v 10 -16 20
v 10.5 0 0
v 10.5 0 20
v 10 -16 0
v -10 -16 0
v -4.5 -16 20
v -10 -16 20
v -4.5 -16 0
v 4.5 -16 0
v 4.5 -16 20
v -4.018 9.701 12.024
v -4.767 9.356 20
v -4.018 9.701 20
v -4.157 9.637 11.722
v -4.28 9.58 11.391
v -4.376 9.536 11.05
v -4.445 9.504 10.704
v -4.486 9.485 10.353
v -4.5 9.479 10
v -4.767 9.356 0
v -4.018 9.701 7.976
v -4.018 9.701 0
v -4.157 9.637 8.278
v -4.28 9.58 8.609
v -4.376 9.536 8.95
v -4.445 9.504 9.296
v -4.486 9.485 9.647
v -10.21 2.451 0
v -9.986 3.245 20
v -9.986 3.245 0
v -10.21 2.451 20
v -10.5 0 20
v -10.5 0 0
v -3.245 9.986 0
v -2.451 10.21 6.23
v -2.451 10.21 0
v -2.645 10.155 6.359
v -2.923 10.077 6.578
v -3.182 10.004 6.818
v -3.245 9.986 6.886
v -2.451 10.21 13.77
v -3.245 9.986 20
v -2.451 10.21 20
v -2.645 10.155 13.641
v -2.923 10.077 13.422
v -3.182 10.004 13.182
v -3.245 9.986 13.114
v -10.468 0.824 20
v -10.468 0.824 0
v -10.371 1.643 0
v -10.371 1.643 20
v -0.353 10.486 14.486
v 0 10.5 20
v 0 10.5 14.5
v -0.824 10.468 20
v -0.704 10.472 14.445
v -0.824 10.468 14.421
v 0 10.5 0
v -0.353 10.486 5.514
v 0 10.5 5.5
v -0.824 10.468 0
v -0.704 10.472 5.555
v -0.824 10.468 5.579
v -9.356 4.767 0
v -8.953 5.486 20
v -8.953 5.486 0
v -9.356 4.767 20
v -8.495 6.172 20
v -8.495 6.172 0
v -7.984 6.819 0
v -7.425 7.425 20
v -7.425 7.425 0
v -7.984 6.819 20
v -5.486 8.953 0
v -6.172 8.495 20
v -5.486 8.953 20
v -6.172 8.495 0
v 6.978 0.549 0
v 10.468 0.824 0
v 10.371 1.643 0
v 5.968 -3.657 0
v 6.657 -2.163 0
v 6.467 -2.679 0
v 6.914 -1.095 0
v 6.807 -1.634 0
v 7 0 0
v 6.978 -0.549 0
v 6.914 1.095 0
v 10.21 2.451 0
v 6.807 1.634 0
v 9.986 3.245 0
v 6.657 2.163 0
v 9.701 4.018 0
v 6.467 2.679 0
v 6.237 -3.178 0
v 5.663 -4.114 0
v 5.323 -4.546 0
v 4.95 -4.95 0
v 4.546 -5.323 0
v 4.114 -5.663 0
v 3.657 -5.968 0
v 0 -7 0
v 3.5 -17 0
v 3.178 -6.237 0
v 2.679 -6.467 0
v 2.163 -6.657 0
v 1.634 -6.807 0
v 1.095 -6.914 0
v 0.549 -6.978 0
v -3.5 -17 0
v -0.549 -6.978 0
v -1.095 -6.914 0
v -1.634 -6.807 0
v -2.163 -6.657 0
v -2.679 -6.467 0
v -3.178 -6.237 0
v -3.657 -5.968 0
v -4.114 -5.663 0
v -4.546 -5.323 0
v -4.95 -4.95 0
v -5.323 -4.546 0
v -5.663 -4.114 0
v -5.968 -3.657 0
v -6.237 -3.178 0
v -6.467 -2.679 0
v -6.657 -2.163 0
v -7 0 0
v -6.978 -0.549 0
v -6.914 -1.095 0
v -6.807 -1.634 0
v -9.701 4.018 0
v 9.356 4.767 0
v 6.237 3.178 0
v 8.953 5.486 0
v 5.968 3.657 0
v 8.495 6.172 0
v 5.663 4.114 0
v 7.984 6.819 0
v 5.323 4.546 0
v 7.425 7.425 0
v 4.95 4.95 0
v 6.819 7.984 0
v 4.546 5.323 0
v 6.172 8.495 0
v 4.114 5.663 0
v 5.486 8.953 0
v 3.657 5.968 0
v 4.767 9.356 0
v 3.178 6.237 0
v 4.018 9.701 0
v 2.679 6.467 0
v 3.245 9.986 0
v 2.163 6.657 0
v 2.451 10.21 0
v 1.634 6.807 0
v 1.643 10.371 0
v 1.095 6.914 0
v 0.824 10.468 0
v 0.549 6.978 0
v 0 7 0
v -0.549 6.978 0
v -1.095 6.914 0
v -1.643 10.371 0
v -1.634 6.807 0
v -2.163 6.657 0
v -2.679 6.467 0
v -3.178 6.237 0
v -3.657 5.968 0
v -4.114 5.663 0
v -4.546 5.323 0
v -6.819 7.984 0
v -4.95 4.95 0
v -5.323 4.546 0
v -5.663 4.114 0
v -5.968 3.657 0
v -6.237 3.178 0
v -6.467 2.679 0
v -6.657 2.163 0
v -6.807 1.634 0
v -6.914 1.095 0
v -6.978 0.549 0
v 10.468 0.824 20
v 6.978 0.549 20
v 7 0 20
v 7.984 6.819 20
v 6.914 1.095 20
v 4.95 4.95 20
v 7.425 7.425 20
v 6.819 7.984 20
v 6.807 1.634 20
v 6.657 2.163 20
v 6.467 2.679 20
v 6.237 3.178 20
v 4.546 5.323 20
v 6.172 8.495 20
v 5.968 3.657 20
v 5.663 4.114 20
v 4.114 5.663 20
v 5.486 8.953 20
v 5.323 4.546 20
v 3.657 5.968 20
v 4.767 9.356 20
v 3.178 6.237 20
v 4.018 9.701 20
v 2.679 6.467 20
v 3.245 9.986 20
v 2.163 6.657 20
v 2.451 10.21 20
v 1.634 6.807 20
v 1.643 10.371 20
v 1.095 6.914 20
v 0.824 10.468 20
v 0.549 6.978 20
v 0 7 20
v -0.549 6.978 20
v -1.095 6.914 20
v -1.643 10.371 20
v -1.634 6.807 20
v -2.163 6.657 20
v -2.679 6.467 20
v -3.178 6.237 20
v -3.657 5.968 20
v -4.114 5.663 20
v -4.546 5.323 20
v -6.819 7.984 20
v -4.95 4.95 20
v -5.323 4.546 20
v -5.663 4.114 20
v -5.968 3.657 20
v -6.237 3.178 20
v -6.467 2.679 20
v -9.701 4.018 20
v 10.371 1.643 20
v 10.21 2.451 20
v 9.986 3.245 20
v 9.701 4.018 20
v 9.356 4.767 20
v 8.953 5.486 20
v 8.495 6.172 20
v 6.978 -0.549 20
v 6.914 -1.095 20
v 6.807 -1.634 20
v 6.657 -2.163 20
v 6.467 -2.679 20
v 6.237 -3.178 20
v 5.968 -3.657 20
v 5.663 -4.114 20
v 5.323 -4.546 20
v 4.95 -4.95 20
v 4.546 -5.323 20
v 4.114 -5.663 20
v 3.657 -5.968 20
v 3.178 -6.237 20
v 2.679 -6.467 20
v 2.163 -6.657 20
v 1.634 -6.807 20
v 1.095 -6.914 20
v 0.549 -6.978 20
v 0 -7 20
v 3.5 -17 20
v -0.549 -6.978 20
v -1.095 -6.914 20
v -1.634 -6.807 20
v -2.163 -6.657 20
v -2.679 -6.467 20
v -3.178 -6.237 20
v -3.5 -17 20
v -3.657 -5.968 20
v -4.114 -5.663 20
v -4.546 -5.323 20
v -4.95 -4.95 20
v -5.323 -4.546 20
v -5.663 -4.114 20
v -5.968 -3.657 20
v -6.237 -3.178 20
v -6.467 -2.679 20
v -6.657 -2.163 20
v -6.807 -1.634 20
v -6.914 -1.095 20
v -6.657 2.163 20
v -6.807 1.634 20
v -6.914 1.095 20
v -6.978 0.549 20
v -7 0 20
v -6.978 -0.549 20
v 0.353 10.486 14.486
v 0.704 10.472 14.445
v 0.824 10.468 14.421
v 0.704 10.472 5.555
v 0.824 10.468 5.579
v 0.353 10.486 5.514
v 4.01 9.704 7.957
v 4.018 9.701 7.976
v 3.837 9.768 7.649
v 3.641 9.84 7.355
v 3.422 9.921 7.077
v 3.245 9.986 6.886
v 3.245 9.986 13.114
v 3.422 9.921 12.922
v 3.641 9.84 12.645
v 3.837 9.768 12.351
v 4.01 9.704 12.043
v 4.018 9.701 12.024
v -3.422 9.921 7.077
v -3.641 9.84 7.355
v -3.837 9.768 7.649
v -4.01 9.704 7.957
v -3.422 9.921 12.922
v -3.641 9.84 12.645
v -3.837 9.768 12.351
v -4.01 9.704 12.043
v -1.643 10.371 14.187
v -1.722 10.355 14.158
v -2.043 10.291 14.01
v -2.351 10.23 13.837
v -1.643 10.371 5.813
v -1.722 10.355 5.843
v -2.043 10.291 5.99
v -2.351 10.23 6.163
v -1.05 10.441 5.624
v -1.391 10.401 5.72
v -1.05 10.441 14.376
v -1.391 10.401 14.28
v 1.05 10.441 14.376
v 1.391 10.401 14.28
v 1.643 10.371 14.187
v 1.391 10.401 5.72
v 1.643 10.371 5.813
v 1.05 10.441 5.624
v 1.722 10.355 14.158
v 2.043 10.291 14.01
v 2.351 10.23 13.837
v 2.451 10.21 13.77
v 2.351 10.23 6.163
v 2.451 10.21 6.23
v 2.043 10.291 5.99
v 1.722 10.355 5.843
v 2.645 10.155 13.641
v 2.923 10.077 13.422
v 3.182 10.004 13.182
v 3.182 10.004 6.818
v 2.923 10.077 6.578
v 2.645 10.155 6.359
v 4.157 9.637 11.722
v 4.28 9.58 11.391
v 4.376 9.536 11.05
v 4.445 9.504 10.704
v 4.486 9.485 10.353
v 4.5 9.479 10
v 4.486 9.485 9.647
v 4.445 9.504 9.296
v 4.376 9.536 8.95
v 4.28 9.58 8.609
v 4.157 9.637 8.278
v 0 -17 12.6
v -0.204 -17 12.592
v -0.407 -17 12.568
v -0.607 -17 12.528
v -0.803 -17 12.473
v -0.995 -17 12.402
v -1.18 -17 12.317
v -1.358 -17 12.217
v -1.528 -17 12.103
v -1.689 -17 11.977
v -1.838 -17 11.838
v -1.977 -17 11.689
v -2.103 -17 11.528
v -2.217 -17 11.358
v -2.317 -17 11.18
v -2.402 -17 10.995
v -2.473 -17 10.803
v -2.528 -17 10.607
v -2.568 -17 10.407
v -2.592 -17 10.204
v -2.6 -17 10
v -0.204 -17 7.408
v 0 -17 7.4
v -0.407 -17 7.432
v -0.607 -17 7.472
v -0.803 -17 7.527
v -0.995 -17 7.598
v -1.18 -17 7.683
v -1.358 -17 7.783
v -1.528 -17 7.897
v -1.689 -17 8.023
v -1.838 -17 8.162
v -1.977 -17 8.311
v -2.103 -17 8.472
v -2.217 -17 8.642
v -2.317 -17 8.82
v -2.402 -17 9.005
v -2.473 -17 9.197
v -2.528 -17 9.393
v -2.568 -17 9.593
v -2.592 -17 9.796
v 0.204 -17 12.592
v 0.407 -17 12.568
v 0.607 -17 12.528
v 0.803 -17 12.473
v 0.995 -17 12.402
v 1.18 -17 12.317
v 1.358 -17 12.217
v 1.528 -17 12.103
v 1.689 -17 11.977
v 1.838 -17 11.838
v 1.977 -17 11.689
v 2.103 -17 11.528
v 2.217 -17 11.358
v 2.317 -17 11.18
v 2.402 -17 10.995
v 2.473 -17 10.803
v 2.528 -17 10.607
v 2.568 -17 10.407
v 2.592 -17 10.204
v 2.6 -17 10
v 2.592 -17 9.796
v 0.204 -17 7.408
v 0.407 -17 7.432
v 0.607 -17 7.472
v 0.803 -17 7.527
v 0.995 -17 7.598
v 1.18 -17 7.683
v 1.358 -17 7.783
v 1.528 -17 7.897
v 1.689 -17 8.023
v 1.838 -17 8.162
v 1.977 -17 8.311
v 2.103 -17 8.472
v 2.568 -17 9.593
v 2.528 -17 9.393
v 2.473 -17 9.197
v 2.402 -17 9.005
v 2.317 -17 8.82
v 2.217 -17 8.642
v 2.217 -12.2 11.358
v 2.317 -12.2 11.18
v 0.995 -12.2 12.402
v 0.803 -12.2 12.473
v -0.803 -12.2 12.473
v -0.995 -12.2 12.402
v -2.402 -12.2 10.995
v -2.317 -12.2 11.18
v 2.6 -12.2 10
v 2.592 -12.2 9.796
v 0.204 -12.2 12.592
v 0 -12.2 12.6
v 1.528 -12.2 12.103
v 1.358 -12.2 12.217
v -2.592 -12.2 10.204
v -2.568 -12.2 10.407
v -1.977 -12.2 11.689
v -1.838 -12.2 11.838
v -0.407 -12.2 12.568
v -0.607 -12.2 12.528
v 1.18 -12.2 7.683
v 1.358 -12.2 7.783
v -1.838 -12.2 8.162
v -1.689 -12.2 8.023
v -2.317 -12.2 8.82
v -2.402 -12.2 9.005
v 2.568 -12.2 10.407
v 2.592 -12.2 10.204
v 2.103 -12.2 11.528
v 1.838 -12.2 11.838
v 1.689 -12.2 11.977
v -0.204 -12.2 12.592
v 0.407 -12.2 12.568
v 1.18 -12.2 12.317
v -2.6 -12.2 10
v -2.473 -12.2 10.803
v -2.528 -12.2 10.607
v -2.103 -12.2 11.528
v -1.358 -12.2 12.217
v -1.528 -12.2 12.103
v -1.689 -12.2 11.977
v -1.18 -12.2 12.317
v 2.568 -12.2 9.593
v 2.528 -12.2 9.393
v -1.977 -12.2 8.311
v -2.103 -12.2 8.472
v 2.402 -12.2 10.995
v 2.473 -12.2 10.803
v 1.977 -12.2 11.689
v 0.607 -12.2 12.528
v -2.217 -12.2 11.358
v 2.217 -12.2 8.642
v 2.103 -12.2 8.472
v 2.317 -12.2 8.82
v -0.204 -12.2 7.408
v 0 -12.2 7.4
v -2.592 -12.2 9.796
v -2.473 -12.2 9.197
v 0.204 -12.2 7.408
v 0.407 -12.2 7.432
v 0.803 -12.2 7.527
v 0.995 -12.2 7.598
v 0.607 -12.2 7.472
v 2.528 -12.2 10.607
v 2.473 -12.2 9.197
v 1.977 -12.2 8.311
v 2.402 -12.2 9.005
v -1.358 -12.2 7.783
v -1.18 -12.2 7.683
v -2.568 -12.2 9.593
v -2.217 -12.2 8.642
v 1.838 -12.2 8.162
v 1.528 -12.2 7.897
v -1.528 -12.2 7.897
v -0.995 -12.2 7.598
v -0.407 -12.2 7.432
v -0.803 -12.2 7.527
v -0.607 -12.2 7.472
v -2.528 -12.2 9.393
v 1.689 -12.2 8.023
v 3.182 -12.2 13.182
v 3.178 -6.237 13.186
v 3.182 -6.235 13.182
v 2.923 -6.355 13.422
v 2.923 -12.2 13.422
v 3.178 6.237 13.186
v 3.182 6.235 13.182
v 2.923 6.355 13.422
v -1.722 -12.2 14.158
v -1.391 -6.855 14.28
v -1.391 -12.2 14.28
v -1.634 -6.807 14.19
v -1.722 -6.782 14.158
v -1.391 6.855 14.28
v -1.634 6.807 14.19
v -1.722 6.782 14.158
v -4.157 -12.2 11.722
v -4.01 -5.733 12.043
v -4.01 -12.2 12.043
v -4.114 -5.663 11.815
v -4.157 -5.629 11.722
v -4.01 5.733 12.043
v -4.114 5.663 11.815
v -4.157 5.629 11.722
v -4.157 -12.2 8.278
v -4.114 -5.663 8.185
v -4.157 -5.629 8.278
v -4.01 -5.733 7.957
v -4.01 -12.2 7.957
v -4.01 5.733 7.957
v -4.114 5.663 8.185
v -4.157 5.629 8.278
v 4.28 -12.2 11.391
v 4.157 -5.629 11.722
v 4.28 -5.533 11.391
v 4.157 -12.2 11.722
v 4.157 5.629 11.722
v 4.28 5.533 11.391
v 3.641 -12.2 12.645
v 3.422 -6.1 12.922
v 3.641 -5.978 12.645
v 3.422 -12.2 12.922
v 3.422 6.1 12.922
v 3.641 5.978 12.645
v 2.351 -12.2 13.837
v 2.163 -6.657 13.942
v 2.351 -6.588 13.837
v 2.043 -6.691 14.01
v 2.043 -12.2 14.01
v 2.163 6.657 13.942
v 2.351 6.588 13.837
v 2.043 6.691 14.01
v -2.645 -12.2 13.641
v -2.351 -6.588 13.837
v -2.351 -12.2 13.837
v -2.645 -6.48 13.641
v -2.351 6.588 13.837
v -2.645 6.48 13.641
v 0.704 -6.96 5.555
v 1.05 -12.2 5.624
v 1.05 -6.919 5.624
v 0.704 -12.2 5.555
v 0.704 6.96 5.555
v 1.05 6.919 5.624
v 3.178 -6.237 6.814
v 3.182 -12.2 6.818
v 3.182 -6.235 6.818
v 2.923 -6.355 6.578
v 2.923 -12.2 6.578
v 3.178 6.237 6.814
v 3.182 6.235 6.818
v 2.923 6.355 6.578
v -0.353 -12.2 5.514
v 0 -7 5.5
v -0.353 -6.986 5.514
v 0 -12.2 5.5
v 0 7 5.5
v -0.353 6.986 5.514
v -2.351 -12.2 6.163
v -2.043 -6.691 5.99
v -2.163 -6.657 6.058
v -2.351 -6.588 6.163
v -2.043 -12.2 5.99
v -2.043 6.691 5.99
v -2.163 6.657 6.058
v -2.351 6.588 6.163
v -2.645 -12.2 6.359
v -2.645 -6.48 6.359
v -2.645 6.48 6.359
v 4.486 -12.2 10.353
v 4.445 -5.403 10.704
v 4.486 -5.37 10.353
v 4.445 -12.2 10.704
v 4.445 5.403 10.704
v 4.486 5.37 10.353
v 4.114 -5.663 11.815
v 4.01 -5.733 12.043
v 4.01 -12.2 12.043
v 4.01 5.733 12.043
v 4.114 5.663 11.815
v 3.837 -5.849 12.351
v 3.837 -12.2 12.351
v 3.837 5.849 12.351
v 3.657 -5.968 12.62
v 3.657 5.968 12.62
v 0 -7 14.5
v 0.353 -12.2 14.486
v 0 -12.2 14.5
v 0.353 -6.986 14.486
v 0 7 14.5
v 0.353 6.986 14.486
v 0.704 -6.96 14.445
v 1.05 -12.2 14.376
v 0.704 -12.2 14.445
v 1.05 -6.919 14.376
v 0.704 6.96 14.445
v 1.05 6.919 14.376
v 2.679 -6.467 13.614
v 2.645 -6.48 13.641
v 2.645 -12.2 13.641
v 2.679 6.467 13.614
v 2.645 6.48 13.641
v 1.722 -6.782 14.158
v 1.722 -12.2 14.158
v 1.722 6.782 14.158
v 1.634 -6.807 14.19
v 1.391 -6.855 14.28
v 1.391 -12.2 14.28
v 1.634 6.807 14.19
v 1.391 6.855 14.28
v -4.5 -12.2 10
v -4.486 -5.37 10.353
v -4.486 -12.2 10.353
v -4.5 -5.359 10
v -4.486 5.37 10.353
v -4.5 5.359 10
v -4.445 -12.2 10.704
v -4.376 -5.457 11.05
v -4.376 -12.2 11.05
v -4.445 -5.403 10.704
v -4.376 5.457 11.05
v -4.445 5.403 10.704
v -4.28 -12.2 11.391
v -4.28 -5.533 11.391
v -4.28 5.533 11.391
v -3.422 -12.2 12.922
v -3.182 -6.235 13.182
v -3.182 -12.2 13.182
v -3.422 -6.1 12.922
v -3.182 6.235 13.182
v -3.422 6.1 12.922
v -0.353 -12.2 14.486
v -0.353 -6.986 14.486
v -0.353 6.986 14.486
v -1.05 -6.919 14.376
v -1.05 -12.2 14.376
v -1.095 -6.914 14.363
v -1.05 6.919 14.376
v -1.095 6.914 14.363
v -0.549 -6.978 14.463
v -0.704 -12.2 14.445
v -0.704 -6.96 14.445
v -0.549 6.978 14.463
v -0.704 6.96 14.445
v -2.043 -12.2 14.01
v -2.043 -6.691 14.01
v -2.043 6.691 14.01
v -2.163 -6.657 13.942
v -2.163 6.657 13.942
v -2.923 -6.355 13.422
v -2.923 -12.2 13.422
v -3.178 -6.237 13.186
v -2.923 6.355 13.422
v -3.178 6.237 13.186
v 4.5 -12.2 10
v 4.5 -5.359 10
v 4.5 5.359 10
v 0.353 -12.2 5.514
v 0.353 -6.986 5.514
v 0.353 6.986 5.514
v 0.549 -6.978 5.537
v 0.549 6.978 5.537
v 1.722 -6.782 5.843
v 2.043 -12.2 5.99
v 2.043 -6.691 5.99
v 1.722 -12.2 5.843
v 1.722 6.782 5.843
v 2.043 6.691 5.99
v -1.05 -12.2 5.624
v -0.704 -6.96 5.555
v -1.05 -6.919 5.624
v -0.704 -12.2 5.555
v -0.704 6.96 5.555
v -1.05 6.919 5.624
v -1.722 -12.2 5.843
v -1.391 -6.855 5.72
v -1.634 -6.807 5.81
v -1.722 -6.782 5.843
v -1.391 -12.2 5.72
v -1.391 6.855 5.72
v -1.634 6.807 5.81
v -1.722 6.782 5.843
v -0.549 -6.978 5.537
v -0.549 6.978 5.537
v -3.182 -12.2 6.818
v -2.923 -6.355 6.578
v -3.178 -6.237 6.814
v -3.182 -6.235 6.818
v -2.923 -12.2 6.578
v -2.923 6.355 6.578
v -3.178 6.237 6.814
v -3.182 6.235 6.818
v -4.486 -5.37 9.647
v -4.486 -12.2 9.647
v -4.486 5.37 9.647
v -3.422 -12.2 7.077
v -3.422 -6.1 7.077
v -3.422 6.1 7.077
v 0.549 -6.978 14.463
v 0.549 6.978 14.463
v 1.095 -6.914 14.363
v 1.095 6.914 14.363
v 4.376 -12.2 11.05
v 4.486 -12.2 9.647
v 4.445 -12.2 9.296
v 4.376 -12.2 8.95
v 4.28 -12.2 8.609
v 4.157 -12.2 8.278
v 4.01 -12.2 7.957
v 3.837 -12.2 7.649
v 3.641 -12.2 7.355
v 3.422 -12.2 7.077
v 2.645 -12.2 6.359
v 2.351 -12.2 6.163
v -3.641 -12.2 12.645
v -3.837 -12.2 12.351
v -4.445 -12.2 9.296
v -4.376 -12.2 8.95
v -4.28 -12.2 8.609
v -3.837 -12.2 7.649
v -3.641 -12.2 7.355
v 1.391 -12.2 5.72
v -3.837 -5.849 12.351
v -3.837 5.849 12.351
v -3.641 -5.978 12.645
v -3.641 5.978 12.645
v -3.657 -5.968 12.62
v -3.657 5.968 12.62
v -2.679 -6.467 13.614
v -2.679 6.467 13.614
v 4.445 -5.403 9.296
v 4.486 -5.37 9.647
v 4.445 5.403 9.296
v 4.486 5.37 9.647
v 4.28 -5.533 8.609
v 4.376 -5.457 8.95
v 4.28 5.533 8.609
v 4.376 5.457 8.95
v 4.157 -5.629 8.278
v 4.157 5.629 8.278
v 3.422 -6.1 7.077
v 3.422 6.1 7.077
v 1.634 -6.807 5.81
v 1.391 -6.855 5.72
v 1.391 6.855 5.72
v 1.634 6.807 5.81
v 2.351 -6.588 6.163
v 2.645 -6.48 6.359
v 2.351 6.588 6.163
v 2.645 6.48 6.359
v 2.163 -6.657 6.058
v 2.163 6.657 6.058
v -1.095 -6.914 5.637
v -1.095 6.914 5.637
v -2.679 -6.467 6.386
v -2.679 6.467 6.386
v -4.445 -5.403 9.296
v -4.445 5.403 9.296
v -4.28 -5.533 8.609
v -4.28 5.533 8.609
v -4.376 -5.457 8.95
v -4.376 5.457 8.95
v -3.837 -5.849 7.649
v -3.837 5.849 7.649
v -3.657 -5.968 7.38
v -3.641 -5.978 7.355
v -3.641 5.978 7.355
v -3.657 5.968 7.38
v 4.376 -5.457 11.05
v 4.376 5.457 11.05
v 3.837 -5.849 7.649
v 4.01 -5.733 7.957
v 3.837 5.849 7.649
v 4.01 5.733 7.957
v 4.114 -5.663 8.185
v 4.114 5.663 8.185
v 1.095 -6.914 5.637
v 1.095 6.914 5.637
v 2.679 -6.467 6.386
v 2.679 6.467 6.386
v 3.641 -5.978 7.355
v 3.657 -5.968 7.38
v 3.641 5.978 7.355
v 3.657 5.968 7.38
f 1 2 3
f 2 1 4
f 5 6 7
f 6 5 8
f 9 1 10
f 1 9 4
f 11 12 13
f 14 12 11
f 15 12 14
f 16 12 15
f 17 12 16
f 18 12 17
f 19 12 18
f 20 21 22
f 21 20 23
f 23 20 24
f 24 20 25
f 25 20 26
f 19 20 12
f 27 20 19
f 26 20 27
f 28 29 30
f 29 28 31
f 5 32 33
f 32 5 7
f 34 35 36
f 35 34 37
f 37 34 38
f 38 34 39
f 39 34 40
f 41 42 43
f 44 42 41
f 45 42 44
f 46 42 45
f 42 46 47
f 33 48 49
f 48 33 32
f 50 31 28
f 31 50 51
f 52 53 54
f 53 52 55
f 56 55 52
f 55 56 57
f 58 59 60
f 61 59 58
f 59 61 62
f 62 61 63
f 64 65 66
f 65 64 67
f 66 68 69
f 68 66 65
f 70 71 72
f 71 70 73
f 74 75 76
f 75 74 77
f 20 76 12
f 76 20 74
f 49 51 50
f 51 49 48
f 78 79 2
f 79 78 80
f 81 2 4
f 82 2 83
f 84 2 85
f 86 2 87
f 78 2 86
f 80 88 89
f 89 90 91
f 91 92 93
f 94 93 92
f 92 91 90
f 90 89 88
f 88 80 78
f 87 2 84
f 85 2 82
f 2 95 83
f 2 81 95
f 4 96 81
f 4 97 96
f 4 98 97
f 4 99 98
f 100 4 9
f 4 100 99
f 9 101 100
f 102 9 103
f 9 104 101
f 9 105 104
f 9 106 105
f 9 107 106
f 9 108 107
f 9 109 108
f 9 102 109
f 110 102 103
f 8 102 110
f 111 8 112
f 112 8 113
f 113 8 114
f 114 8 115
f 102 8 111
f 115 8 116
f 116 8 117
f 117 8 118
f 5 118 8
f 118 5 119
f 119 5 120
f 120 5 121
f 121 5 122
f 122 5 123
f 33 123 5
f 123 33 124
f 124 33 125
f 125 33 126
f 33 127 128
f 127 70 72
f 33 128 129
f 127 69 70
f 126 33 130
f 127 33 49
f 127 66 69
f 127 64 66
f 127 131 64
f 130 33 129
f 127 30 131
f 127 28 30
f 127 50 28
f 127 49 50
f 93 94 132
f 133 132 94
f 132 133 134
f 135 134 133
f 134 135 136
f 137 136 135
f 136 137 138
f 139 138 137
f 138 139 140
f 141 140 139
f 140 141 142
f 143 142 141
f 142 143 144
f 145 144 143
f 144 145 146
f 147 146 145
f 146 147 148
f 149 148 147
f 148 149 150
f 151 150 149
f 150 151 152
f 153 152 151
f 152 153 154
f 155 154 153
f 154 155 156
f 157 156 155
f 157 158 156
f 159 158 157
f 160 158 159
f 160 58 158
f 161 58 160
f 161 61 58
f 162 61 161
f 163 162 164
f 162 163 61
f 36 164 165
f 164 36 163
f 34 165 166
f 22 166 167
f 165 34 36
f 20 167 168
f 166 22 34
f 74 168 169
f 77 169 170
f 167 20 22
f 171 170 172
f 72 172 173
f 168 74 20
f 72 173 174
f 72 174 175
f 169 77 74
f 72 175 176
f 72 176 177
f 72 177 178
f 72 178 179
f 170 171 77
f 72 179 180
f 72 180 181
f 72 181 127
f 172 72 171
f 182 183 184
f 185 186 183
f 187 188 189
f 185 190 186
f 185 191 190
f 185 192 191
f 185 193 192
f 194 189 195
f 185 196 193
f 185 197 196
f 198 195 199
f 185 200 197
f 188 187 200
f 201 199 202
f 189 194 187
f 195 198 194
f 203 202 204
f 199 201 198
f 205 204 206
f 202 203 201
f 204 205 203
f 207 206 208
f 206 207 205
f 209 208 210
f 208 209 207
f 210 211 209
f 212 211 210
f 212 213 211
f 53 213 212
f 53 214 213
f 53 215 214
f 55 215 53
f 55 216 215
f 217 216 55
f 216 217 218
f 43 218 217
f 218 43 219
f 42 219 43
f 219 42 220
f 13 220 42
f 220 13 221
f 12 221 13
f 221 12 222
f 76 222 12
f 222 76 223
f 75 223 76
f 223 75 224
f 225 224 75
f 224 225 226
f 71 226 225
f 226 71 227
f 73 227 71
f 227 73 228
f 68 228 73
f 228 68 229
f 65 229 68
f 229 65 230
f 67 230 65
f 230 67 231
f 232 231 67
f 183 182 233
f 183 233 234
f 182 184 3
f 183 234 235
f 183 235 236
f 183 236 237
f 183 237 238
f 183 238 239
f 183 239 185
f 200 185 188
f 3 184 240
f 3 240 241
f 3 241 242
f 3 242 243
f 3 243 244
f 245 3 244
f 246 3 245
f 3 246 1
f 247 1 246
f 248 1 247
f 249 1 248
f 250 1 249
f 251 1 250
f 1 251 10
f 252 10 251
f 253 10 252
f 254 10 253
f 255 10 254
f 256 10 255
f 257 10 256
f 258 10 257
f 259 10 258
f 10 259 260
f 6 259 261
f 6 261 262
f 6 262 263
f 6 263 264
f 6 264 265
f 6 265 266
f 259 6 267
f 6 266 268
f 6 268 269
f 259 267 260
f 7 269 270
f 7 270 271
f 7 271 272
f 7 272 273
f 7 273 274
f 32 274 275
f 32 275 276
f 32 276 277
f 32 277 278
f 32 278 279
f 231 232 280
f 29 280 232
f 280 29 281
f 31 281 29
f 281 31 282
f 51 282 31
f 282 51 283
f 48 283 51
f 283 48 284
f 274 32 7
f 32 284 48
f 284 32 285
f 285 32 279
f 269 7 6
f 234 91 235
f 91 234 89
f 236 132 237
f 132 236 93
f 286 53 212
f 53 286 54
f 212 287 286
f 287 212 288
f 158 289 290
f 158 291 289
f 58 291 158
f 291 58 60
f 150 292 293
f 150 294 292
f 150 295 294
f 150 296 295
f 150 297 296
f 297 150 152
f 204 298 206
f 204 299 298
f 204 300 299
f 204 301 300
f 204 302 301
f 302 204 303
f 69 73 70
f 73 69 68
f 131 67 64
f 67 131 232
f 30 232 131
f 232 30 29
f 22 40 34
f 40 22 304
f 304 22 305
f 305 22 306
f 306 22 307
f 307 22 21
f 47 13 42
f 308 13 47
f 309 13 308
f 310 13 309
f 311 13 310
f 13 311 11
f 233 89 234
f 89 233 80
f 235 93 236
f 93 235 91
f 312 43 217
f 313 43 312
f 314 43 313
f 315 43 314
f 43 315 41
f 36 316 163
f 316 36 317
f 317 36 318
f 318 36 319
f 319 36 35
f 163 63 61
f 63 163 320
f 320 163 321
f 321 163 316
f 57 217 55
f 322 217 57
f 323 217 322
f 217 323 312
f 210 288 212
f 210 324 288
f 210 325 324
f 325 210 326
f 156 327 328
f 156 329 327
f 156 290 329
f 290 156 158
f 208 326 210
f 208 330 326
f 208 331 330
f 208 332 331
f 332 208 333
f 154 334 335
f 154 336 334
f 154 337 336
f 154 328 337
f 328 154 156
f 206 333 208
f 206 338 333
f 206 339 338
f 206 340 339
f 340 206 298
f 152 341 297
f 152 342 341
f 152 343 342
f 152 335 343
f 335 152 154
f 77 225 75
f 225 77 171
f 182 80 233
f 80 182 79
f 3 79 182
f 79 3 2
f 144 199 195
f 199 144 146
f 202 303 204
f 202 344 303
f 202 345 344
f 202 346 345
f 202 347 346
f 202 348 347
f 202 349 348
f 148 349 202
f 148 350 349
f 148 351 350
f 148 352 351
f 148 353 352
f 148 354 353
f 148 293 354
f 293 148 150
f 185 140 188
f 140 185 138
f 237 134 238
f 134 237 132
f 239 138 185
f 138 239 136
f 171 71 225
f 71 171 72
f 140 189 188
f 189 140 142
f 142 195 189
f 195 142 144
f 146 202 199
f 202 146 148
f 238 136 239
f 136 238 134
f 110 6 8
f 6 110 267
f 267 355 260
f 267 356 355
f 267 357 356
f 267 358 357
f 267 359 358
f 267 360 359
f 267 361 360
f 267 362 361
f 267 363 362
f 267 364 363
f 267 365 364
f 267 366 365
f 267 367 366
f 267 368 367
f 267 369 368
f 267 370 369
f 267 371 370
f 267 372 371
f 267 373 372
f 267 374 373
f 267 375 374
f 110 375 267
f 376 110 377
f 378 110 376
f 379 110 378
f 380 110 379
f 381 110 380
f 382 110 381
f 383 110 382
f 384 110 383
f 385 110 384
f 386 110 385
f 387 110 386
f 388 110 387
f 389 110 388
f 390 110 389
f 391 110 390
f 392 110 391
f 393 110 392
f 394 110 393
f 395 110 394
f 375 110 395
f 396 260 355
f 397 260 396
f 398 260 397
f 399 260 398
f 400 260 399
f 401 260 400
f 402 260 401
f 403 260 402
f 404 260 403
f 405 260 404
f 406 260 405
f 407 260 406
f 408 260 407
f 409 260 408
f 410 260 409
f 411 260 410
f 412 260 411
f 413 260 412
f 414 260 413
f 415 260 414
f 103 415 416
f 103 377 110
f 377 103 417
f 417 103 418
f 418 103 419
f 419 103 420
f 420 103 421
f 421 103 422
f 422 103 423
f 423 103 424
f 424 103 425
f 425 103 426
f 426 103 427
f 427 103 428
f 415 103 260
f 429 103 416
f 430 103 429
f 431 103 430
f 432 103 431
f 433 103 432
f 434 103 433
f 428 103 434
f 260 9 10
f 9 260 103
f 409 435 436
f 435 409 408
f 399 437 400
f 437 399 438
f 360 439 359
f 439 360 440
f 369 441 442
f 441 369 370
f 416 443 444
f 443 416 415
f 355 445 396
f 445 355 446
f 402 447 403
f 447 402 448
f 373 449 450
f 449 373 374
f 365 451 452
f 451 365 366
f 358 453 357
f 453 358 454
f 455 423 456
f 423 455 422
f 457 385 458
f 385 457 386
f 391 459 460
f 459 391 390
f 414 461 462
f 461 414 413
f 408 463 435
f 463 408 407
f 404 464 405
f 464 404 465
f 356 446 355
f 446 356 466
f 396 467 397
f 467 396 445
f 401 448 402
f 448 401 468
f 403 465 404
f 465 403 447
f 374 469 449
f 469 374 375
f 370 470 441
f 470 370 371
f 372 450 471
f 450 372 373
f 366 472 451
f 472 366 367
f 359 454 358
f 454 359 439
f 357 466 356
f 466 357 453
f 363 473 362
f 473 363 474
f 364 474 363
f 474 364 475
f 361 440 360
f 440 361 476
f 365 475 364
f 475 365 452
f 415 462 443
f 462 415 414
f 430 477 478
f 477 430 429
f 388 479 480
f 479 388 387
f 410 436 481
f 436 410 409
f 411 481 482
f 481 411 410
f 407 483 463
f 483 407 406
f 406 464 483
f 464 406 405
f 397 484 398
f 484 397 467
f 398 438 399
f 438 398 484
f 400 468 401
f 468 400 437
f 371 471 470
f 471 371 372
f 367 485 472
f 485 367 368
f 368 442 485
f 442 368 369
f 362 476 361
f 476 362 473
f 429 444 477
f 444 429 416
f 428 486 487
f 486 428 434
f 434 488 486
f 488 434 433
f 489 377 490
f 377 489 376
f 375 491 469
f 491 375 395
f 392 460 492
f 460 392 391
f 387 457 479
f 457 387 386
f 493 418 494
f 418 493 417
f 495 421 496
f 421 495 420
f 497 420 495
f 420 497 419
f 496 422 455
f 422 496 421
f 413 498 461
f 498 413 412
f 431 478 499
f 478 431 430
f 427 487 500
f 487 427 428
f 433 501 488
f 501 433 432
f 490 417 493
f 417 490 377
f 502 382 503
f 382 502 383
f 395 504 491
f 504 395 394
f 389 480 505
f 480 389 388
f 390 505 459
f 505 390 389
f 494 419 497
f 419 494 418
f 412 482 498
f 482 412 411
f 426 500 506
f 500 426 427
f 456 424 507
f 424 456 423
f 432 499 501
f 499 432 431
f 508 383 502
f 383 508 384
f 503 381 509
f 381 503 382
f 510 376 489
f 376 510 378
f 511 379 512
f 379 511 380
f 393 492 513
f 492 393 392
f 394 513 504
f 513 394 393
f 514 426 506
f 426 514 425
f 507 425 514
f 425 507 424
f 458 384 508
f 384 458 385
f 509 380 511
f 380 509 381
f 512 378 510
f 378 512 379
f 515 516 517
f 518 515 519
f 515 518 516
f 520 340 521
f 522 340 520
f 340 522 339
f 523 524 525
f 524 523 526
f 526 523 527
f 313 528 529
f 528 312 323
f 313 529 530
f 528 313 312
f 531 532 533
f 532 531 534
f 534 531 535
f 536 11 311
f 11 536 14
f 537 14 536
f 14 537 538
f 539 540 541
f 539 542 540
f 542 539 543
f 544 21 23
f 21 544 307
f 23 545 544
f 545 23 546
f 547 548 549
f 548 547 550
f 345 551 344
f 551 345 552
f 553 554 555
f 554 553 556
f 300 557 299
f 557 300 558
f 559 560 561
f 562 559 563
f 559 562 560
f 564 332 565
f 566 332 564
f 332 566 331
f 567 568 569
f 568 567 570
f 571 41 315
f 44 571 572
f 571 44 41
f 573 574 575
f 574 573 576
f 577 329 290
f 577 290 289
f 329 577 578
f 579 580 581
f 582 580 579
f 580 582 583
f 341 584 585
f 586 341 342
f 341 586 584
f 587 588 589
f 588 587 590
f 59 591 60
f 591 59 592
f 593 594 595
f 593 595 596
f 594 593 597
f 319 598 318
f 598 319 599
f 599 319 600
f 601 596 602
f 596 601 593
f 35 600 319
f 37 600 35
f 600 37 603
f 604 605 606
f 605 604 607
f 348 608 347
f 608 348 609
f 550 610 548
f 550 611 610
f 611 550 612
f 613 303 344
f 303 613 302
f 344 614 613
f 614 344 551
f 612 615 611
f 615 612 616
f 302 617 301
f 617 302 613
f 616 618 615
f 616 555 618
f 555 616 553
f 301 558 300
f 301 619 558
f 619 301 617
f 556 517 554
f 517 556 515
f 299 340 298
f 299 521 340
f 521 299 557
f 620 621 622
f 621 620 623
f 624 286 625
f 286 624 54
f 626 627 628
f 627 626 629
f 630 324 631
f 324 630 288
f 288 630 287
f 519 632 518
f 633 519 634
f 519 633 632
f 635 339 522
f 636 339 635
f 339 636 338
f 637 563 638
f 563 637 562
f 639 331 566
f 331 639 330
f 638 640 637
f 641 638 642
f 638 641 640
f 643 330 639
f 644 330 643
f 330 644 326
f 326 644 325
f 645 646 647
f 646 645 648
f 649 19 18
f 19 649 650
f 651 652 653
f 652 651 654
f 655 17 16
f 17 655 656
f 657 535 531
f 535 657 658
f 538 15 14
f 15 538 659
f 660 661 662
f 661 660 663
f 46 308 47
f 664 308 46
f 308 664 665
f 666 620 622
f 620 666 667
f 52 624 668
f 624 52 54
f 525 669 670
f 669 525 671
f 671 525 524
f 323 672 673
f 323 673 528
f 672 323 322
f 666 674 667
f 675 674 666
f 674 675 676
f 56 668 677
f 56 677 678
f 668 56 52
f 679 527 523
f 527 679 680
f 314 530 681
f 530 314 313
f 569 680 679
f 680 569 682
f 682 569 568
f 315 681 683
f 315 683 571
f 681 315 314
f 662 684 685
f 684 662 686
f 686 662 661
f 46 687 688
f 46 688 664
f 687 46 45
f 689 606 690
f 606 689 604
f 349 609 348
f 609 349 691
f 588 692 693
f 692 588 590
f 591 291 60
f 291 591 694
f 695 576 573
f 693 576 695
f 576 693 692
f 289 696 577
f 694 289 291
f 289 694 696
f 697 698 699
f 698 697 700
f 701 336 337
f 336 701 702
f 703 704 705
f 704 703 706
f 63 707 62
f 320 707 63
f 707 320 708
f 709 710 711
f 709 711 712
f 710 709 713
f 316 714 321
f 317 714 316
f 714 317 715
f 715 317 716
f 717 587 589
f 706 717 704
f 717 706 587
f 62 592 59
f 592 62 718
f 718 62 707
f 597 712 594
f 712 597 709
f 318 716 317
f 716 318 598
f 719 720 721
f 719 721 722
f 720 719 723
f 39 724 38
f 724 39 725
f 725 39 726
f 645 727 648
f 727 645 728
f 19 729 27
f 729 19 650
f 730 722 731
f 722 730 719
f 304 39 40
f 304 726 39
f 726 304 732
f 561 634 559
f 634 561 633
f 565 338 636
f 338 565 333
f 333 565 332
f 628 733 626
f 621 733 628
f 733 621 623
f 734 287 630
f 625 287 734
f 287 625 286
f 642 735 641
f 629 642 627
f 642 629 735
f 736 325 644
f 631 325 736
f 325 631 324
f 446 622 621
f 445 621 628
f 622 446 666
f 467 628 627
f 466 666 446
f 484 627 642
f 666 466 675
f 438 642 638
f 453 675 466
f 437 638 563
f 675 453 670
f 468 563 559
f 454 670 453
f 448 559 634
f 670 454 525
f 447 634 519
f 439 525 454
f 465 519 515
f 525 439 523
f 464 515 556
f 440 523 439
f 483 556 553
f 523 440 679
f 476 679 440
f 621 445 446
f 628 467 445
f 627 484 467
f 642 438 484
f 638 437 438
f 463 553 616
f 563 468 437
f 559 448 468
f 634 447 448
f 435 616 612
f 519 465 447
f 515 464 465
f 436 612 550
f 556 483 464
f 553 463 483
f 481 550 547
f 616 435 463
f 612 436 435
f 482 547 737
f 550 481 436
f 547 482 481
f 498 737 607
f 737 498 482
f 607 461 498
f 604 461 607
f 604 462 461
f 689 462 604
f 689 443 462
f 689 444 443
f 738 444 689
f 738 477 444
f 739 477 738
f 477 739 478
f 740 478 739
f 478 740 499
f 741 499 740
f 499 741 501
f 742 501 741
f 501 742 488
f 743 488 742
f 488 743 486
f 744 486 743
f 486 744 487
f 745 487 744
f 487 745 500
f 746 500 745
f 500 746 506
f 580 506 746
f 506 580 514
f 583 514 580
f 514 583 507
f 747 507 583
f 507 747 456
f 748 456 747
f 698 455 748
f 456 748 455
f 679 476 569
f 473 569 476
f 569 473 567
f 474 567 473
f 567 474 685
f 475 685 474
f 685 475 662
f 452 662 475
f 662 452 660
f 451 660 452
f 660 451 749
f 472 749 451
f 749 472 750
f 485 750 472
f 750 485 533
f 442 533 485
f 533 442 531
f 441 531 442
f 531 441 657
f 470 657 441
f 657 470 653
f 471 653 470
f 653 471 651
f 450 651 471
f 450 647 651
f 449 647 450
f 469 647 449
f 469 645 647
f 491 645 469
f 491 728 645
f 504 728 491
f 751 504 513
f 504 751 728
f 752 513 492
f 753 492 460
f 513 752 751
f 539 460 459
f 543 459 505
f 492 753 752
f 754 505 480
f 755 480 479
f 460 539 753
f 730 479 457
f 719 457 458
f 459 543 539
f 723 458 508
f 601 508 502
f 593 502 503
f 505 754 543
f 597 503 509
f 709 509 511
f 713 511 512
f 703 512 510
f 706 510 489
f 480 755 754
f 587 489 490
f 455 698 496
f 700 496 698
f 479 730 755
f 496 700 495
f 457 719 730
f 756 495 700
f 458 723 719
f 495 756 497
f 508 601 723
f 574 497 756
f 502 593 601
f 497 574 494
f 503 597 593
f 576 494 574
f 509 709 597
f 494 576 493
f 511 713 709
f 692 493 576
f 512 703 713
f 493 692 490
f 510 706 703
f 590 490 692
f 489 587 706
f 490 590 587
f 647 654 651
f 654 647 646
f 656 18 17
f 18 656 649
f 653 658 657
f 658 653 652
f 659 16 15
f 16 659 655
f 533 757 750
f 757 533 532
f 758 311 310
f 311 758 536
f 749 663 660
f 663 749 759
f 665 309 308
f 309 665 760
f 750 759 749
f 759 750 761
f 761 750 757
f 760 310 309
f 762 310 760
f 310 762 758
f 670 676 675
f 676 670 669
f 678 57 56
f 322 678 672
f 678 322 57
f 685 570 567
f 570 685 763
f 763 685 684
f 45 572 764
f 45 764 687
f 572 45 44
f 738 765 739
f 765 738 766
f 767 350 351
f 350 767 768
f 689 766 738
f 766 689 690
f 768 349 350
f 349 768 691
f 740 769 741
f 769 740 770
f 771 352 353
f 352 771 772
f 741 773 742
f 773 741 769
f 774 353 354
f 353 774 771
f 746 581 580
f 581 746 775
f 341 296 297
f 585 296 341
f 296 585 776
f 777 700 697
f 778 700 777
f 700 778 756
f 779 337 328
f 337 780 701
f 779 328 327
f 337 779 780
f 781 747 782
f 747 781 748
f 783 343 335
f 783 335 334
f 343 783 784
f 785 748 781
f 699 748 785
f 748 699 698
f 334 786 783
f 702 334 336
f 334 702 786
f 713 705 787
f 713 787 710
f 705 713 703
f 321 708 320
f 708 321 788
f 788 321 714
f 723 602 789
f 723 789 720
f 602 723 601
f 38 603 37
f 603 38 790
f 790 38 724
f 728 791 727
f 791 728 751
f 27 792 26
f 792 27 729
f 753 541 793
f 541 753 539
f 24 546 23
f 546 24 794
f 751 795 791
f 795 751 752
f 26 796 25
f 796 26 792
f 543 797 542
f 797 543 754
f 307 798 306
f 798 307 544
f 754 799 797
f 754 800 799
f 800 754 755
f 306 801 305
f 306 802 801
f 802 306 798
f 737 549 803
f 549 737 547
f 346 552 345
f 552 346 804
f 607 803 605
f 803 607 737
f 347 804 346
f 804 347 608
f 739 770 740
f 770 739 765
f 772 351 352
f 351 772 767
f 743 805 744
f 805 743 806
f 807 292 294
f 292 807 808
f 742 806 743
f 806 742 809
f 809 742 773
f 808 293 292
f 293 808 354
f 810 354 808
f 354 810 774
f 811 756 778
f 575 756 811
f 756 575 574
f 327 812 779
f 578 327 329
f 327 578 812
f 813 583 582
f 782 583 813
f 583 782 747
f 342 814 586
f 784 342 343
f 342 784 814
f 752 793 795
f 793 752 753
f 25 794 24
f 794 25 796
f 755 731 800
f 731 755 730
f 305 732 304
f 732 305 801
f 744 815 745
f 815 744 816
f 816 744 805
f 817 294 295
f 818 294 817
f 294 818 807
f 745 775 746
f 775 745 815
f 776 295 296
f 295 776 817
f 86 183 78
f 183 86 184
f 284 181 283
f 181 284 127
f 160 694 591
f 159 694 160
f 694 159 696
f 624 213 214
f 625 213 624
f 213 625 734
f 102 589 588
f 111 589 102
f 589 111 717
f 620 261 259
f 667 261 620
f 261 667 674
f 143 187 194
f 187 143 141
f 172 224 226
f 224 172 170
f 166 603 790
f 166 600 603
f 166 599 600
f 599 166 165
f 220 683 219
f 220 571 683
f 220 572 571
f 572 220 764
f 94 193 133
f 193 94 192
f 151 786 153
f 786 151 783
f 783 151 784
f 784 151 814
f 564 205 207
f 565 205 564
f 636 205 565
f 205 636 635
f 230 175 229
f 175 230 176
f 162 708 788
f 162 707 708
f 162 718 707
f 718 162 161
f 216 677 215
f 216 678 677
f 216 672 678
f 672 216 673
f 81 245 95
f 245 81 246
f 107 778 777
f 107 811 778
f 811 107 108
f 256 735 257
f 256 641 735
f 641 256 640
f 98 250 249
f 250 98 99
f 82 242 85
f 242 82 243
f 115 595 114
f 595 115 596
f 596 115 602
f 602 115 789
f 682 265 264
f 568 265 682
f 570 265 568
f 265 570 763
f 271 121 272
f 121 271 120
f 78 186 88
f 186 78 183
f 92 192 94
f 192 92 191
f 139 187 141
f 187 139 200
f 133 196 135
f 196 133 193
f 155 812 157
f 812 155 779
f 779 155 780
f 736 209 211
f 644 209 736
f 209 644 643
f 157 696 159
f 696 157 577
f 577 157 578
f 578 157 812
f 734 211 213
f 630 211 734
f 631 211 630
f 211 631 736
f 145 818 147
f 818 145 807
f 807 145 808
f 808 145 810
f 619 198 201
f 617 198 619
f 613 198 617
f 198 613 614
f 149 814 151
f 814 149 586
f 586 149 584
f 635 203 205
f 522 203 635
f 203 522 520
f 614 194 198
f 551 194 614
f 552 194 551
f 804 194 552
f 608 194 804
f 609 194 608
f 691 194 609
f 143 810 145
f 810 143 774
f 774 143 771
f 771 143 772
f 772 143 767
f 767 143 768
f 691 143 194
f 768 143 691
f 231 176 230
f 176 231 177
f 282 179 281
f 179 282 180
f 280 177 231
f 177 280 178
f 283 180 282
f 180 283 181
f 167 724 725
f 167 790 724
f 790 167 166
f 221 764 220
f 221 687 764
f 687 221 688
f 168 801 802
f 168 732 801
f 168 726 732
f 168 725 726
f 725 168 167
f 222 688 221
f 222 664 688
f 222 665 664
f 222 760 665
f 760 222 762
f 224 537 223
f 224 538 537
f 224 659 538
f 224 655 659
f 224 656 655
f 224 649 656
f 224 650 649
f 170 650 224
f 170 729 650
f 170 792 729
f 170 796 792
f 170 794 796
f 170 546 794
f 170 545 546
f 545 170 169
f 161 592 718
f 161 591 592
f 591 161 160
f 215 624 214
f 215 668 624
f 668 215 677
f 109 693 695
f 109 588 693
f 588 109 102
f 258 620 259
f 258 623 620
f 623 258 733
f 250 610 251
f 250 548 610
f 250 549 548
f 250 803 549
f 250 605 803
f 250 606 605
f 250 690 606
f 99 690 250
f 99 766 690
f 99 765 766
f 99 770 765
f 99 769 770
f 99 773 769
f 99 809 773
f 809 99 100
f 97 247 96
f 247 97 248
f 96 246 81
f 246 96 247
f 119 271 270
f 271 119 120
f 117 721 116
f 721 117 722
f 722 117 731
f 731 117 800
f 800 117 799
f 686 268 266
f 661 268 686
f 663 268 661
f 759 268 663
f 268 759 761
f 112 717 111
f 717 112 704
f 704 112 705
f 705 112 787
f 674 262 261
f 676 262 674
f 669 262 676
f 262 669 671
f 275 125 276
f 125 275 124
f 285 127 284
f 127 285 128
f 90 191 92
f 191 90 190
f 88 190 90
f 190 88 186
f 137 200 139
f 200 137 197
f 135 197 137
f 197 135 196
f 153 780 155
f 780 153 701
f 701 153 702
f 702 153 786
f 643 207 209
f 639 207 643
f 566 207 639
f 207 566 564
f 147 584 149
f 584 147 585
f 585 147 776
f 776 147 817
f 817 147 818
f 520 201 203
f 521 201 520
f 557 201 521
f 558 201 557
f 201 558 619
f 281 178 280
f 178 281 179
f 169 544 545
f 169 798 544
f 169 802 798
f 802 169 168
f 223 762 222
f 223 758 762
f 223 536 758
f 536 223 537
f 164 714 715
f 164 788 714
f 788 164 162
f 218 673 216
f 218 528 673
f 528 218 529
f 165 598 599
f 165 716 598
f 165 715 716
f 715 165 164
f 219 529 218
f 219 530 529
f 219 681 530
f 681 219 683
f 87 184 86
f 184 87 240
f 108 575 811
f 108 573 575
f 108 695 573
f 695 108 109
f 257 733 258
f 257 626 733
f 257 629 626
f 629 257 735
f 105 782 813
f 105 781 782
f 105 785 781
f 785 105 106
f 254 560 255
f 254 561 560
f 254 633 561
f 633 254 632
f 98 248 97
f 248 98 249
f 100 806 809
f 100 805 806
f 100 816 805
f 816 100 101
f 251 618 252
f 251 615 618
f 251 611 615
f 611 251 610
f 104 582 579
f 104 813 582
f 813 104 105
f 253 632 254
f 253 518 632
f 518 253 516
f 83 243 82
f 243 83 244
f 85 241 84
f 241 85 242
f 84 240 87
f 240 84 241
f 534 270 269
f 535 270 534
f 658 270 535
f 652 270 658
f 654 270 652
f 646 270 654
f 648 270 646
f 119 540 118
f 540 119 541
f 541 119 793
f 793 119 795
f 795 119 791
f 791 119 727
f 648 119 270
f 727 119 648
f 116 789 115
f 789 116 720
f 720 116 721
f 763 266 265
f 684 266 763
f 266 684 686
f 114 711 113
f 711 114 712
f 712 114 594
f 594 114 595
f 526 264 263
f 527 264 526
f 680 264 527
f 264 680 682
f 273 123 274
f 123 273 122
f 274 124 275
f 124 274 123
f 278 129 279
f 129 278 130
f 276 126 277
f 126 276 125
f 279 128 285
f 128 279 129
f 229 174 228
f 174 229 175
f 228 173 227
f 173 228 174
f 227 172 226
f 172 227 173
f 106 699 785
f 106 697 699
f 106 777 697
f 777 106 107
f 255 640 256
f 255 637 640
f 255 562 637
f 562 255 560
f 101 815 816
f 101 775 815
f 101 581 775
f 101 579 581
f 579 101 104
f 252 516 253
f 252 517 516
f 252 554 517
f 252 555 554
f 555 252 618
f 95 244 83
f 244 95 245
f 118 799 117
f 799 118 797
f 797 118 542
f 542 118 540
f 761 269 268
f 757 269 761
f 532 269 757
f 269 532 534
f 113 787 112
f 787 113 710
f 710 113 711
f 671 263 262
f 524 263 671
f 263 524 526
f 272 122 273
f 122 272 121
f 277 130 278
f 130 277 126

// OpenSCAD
$fn=80;

difference() {
   union() {
      translate([-15,-16,0]) {
         hull() {
            translate([5,0,0]) cube([20,10,20]);
            translate([15,16,0]) cylinder(d=21,h=20);
         }

         /* angled bit to fit in v-slot */
         translate([19.5,0,0]) rotate([0,0,180])
            linear_extrude(height=20)
            polygon(points=[[-0.1,0],[0,0],[1,1],[8,1],[9,0],[9,-0.1]]);
      }
   }

   /* conduit hole */
   translate([0,0,-0.5]) cylinder(d=14,h=21);
   translate([0,-2.2,10]) rotate([90,0,0]) {
      /* bolt holes */
      translate([0,0,14-4.8]) cylinder(h=15,d=5.2);

      /* cap holes (with a little gap to allow bridging */
      translate([0,0,-20]) cylinder(h=30,d=9);
   }
}
